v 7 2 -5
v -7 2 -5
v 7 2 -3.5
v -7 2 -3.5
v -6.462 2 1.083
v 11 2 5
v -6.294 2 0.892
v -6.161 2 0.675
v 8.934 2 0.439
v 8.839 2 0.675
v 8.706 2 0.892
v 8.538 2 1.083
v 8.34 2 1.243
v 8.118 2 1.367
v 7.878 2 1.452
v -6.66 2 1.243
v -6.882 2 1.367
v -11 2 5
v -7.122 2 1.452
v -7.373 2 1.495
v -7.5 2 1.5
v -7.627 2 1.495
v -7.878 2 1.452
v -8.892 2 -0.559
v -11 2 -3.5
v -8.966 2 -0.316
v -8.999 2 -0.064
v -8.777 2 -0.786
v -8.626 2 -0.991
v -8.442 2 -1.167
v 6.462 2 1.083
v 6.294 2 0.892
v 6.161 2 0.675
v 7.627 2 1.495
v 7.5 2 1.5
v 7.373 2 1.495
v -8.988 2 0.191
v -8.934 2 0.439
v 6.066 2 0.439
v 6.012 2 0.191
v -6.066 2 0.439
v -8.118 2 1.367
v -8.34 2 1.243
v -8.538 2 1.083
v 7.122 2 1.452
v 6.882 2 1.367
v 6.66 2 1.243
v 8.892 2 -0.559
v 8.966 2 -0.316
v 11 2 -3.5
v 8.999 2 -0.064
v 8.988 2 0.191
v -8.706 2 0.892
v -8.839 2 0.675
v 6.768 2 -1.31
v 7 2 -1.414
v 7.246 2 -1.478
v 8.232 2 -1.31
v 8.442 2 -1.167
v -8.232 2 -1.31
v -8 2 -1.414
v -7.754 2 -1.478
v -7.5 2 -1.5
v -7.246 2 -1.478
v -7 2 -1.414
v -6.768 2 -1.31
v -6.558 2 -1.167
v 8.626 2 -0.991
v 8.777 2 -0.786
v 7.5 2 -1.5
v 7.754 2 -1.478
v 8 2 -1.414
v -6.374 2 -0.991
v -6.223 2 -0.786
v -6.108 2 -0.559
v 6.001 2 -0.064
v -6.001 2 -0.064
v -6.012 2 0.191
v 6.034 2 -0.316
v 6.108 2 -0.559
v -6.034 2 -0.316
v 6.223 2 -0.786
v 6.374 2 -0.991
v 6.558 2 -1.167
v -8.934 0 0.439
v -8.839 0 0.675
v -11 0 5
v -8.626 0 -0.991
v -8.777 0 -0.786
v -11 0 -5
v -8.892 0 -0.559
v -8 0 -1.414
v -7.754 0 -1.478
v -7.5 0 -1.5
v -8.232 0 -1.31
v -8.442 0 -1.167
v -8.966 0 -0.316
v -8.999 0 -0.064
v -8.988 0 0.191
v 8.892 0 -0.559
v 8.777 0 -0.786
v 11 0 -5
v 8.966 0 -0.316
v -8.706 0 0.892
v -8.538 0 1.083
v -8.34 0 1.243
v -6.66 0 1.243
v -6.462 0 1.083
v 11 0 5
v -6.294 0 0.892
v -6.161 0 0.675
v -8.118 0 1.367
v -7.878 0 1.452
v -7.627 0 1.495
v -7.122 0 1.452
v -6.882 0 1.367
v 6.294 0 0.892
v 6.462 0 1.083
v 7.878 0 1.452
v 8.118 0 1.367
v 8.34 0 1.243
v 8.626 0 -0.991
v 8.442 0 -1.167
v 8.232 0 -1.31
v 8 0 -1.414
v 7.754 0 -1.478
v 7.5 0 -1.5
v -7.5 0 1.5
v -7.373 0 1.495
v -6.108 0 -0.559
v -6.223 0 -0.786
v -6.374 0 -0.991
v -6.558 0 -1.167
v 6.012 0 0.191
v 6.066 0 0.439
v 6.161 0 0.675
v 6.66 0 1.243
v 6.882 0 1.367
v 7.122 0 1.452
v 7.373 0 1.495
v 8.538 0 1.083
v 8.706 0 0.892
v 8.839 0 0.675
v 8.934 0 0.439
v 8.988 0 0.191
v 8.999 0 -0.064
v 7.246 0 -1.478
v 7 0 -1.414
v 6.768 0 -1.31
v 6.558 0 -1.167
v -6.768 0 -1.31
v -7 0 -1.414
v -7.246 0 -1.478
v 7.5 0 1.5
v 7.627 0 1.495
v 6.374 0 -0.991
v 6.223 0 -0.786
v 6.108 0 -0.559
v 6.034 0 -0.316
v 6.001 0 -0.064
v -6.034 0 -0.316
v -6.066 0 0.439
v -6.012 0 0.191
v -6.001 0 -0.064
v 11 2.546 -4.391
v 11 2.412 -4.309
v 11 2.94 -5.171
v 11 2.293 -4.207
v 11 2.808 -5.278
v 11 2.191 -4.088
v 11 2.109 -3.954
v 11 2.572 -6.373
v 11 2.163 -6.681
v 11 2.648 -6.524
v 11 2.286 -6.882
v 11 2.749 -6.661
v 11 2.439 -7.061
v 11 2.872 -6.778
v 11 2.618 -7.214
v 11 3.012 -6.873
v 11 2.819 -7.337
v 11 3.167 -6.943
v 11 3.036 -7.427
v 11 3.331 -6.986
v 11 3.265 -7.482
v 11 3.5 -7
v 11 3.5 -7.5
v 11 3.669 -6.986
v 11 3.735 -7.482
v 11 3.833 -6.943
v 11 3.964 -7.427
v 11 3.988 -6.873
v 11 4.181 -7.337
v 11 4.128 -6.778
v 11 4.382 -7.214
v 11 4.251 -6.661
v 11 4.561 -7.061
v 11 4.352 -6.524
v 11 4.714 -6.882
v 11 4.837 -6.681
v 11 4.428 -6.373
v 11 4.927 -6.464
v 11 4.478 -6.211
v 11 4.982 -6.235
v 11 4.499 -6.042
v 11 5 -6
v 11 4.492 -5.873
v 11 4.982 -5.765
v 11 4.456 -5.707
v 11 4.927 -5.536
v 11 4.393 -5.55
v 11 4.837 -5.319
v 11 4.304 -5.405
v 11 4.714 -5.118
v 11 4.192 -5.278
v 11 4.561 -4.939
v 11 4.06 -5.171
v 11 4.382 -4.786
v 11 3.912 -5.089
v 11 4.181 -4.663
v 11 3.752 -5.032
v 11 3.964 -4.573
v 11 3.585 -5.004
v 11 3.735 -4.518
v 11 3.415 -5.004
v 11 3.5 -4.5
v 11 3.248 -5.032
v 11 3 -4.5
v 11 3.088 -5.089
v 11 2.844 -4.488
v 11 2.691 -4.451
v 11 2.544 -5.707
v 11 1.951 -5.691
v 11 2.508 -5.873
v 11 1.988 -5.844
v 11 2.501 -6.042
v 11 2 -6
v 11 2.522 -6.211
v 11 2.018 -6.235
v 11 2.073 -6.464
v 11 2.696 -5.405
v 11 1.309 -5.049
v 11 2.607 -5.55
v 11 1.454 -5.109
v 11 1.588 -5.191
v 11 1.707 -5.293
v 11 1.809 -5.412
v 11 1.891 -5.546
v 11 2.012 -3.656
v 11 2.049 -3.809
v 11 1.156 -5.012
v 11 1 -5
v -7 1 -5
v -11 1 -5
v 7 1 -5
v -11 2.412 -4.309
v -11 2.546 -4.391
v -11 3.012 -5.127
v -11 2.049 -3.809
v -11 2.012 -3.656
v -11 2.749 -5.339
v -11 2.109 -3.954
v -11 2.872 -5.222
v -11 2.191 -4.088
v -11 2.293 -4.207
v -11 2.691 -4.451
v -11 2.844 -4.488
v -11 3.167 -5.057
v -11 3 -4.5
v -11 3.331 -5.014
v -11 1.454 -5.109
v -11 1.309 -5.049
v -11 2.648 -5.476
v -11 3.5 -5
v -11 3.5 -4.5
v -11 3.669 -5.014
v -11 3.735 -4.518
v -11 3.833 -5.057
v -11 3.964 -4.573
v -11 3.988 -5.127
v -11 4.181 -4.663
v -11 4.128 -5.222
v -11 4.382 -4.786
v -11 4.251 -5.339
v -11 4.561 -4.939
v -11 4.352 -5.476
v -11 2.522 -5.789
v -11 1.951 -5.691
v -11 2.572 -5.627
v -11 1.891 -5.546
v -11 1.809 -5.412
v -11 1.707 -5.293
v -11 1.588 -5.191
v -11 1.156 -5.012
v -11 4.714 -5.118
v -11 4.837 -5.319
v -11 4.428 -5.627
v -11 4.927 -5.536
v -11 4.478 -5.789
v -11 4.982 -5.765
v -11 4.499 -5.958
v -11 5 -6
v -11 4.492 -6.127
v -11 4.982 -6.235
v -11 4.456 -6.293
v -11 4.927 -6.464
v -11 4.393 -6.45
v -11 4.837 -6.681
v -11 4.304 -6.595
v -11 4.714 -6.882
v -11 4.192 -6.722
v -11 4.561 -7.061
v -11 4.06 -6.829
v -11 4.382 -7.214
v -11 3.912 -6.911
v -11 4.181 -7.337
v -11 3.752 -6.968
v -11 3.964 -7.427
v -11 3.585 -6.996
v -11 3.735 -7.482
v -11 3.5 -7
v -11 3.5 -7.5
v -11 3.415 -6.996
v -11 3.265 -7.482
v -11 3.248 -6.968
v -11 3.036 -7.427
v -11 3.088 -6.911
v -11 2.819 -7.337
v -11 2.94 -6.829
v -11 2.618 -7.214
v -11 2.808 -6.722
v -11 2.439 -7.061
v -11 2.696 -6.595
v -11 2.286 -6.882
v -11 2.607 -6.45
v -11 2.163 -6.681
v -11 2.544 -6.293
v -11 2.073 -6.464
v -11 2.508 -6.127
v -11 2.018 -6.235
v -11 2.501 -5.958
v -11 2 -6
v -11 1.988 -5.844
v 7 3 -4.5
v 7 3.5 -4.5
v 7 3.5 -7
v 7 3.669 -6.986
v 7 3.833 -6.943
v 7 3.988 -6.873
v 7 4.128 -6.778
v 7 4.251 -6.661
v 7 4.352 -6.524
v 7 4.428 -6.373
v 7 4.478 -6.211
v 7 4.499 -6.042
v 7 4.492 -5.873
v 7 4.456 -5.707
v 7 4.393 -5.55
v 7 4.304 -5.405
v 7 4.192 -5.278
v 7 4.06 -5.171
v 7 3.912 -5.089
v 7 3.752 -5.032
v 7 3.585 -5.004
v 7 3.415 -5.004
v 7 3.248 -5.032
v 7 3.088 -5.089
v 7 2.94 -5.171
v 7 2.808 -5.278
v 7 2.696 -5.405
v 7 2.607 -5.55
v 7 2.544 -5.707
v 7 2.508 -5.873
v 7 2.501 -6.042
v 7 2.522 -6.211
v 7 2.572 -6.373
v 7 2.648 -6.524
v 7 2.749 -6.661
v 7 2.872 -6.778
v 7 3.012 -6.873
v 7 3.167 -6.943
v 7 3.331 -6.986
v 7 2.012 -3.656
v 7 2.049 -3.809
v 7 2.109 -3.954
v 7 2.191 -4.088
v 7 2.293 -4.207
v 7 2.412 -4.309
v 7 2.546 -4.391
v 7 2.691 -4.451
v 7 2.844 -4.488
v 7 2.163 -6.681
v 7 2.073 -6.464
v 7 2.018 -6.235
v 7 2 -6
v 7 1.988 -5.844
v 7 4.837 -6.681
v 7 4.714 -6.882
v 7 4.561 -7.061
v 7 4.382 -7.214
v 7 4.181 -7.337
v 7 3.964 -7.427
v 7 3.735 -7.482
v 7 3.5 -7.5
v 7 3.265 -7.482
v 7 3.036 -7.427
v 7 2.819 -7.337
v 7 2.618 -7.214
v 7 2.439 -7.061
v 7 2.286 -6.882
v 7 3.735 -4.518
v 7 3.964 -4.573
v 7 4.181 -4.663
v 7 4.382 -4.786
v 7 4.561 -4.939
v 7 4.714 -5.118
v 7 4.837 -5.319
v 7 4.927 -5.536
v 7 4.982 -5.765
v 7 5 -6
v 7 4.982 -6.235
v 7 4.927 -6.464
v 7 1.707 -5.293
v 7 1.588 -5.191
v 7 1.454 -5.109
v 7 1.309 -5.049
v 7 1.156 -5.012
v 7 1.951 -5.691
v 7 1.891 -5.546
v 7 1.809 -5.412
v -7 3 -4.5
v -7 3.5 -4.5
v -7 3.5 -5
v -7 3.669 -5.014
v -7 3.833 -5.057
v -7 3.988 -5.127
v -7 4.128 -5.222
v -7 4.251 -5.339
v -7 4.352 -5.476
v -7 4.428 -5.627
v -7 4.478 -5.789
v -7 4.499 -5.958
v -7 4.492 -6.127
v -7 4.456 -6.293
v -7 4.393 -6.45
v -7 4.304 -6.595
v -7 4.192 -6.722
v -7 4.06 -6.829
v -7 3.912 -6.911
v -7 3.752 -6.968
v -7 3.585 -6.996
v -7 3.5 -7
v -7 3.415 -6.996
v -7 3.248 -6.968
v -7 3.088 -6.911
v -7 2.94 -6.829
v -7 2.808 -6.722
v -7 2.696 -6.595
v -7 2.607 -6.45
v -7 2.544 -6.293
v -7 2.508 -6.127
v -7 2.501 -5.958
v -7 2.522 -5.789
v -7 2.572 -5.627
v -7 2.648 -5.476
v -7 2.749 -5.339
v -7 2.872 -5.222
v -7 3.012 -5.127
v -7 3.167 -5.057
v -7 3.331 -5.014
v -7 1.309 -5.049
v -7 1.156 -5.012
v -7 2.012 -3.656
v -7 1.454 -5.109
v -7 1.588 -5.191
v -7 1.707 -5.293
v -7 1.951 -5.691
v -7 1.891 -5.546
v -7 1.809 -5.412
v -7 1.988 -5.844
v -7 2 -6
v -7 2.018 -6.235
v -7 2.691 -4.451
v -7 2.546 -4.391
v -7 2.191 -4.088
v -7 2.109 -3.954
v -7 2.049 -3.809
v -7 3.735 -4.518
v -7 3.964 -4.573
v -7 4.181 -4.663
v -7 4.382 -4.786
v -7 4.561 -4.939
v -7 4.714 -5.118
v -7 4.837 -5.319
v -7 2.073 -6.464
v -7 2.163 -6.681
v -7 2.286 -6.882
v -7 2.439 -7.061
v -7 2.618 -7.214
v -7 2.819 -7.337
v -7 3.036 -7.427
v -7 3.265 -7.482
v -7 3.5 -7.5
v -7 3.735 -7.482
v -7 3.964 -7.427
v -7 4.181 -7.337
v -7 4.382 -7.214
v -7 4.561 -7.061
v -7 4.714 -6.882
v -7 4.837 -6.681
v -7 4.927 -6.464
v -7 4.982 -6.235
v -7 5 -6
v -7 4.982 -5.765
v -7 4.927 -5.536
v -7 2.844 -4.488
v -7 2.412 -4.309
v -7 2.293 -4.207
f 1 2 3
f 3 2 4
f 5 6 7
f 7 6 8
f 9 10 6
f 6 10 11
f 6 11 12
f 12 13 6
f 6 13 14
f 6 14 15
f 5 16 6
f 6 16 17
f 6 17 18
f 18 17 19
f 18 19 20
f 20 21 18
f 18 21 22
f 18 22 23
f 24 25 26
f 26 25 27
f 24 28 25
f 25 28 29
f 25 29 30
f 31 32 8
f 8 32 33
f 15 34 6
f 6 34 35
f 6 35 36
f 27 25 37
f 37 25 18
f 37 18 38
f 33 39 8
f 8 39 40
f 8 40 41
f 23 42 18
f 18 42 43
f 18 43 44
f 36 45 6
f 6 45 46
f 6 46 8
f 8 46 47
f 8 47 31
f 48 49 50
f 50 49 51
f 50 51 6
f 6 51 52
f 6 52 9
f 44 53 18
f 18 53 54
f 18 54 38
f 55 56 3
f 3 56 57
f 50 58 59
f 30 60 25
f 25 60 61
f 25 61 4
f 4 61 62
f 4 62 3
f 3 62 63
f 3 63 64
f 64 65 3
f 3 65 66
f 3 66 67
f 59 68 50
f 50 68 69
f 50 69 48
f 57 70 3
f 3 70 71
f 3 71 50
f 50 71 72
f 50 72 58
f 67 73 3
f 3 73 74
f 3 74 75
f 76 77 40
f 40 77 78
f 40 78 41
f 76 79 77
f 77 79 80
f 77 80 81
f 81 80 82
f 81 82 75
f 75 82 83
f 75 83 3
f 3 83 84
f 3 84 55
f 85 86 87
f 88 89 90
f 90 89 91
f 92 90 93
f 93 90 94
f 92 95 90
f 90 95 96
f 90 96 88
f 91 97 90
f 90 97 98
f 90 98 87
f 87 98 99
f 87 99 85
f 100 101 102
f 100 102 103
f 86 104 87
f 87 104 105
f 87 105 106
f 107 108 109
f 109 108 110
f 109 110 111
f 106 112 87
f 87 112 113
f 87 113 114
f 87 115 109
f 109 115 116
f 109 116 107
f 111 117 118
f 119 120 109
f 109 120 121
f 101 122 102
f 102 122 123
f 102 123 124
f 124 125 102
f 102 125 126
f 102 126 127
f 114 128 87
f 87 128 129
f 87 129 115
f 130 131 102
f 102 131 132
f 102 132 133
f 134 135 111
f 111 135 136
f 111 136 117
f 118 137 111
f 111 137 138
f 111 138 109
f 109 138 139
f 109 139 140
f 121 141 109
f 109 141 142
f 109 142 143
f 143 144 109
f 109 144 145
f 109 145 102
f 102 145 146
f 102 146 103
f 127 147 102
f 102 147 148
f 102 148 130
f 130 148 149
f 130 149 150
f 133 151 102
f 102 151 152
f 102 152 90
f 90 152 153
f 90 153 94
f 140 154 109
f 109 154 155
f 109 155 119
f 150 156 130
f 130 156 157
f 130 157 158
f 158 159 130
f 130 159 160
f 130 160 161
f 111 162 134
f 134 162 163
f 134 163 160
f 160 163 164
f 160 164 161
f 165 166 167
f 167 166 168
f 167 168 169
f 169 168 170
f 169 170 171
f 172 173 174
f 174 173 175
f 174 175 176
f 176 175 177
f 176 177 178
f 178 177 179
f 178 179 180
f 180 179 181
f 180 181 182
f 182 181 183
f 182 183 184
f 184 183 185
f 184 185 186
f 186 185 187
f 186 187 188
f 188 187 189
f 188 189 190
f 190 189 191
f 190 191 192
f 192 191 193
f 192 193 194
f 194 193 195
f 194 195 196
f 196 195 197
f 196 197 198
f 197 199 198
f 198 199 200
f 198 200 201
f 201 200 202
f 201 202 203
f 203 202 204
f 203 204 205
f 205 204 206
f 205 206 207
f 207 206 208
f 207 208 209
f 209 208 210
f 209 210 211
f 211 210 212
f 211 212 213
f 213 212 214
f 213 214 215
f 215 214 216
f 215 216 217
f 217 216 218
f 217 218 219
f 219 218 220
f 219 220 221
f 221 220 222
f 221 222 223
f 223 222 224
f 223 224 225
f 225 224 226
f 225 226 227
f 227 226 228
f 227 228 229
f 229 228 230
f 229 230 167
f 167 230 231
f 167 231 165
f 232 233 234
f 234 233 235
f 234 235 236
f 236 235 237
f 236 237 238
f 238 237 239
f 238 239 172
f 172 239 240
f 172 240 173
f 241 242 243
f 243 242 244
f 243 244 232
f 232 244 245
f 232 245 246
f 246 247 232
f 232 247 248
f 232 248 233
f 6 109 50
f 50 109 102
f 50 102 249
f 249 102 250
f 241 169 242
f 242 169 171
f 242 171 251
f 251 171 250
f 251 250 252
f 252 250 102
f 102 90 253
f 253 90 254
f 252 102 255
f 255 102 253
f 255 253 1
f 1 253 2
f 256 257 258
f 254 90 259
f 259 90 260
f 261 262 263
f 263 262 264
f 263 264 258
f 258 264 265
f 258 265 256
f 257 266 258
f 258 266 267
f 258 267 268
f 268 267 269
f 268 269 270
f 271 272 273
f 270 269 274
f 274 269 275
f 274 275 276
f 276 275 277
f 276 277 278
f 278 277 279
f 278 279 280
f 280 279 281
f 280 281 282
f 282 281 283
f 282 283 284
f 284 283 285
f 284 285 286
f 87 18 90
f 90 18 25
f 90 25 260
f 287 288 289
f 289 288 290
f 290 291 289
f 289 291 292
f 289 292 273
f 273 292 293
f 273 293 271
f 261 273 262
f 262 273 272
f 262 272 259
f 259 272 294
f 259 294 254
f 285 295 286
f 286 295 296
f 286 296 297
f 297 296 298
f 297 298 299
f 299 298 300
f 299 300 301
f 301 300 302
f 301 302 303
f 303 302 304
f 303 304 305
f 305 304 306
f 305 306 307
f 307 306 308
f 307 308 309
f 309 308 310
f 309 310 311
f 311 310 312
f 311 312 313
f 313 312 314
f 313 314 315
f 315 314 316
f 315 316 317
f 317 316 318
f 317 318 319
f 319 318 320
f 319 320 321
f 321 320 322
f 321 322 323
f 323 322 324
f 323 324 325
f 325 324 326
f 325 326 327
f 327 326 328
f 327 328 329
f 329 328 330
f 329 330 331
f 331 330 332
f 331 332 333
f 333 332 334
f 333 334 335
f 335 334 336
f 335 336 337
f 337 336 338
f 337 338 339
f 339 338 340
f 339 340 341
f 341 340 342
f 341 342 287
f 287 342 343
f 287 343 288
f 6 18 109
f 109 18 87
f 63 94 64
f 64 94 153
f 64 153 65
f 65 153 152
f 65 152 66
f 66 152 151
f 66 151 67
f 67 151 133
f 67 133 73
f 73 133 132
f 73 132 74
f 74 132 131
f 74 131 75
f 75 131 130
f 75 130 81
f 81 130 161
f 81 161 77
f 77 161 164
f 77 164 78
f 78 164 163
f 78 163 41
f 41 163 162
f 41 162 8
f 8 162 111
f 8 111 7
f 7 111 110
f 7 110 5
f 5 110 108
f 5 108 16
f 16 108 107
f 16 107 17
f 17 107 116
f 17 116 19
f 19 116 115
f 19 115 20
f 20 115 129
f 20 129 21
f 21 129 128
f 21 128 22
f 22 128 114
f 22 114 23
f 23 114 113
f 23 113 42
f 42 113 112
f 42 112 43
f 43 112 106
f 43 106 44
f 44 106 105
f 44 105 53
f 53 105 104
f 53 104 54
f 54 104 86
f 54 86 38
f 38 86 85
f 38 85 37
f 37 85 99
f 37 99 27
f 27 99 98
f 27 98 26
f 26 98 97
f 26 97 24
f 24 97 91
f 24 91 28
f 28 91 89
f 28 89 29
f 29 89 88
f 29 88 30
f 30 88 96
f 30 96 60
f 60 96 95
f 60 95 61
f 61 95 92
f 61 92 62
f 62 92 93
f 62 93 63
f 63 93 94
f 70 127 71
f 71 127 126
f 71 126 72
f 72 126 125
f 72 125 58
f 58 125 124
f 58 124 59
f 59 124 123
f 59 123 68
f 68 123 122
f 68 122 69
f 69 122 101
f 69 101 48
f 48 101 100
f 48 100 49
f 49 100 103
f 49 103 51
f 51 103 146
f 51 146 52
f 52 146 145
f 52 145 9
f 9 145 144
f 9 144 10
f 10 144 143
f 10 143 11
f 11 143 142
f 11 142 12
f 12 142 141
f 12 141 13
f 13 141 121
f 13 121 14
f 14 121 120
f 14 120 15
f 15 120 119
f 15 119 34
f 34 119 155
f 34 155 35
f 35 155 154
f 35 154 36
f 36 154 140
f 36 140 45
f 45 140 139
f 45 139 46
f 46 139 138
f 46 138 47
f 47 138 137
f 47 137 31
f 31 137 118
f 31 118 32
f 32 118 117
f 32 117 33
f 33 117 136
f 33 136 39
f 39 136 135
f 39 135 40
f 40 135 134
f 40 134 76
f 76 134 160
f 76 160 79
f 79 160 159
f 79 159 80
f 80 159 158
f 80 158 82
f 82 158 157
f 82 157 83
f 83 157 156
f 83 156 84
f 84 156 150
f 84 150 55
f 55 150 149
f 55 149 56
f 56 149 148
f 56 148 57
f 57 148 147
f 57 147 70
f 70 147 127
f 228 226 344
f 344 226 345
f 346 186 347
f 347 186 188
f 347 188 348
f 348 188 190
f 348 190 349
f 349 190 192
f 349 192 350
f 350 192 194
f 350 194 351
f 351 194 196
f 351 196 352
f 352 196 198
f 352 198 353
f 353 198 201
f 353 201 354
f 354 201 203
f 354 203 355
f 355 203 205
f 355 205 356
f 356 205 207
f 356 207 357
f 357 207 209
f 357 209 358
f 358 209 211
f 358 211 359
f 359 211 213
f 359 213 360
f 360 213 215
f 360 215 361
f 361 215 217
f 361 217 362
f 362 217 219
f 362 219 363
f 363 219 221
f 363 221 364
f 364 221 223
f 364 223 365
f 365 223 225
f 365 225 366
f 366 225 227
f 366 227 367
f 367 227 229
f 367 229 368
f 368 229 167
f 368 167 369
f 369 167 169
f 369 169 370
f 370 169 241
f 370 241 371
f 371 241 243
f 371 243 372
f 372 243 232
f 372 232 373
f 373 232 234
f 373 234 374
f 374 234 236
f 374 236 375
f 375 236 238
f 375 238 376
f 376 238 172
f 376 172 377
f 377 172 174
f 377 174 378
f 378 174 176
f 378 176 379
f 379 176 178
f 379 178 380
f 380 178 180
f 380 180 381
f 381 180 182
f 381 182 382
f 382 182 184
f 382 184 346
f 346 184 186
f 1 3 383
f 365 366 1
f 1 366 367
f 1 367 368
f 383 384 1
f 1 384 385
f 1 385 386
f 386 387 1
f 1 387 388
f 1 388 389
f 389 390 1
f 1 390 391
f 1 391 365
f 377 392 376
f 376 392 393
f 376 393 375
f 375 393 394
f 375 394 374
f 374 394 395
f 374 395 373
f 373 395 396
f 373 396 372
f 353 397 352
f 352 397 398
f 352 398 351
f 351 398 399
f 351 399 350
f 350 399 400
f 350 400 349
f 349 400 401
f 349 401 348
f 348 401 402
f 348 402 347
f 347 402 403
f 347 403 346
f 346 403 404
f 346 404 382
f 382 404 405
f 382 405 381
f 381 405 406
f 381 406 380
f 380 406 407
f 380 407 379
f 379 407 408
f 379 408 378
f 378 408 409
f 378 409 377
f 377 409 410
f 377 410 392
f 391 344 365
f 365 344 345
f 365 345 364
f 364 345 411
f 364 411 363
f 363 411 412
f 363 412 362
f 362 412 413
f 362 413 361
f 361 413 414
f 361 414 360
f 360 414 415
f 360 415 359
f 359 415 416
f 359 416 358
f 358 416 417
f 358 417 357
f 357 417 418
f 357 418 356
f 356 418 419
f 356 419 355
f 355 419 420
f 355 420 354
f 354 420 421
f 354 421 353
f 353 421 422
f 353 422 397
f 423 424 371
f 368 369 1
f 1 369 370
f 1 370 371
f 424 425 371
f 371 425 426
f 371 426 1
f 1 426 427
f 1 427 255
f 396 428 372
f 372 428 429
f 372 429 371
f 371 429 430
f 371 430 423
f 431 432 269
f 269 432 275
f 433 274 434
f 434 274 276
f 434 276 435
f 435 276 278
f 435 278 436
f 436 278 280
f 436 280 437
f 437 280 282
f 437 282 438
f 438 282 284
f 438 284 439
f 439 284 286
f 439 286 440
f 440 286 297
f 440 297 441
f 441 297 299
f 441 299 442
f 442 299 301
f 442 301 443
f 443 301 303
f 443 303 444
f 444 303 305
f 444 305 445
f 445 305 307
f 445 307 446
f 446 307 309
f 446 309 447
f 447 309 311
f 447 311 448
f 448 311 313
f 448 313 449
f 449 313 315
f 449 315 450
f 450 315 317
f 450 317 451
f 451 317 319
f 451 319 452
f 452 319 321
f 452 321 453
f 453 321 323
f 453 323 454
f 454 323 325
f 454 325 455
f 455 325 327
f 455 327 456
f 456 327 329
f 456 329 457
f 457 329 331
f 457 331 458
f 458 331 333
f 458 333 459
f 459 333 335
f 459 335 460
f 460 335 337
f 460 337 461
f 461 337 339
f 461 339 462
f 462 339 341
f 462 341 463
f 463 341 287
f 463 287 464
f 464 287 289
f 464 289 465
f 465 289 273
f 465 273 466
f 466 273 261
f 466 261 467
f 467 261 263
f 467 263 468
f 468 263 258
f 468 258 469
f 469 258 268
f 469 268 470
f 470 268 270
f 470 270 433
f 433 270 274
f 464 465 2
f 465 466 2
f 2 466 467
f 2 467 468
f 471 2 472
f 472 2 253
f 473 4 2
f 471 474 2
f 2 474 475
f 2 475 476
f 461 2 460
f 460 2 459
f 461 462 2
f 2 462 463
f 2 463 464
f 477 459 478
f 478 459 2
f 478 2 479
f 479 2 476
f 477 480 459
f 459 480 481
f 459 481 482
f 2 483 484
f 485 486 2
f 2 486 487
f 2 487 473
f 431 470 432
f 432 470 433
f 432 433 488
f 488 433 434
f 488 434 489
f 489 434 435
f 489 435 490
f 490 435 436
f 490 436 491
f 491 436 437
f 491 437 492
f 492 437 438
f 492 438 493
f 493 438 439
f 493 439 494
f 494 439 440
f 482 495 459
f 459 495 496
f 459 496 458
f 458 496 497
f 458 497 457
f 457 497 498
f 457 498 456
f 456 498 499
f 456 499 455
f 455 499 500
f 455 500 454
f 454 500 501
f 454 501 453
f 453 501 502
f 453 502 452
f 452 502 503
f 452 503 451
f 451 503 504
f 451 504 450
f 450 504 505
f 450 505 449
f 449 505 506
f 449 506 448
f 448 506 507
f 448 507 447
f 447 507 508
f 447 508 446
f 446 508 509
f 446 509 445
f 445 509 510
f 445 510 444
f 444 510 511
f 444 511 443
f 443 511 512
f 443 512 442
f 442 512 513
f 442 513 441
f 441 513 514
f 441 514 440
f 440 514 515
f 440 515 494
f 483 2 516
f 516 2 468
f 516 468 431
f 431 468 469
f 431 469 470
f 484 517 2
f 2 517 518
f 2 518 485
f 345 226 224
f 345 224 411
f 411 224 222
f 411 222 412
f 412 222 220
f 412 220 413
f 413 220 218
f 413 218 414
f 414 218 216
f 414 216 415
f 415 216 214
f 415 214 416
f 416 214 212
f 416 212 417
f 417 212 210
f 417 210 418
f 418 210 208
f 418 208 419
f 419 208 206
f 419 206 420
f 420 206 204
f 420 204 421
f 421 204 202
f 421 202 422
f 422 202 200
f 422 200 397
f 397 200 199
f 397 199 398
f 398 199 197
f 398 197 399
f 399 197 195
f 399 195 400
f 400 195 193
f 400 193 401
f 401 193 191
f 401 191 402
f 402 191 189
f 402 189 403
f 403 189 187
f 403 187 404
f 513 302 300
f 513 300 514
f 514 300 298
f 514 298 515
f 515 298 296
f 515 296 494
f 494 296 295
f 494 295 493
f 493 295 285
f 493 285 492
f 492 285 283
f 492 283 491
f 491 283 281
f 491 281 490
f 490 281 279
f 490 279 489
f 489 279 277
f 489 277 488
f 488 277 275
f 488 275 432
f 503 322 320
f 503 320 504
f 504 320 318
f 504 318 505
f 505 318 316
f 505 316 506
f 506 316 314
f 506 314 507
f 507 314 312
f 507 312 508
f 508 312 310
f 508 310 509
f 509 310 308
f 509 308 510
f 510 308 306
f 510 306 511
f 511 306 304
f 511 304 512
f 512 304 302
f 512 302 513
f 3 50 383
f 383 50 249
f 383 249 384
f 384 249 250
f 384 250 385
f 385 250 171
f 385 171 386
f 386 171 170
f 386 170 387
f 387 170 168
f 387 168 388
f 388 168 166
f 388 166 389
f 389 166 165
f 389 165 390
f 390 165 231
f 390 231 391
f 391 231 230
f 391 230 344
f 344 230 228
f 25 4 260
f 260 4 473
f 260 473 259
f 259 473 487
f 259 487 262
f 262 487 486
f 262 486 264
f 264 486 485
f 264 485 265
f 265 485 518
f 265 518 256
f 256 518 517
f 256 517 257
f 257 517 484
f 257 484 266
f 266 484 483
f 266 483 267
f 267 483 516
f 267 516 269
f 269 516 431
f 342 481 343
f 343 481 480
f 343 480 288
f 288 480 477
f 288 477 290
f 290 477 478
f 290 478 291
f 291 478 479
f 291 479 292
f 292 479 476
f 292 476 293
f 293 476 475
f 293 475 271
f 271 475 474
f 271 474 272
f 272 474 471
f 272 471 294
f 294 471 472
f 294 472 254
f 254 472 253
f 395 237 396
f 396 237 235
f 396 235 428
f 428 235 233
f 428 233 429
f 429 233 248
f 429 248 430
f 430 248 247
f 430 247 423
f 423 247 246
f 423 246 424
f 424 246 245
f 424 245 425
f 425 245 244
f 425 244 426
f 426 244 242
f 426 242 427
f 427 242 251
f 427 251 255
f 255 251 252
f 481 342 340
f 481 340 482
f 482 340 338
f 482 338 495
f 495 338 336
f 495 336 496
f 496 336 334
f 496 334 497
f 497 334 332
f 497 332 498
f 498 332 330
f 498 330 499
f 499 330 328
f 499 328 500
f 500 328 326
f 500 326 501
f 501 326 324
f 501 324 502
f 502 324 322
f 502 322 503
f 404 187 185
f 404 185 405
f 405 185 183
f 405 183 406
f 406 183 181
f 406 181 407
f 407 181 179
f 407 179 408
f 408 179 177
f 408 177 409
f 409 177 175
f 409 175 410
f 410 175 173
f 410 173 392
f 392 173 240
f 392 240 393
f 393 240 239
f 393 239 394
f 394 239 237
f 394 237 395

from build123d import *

# Parameters (mm, degrees)
SKETCH2_W           = 22
SKETCH2_H           = 10
SKETCH2_R           = 1.5
BOSS_EXTRUDE1_DEPTH = 2
SKETCH3_W           = 3
SKETCH3_H           = 3
SKETCH3_R           = 1
BOSS_EXTRUDE2_DEPTH = 4
FILLET1_R           = 1.5
FILLET2_R           = 1
FILLET3_R           = 1
FILLET4_R           = 1.5


with BuildPart() as part:
    # Sketch2 → Boss-Extrude1 (new body)
    with BuildSketch(Plane(origin=(0, 0, 0), x_dir=(1, 0, 0), z_dir=(0, 1, 0))):
        Rectangle(SKETCH2_W, SKETCH2_H)
        with Locations(Location((-7.5, 0, 0), (0, 0, 270))):
            Circle(SKETCH2_R, mode=Mode.SUBTRACT)
        with Locations(Location((7.5, 0, 0), (0, 0, 270))):
            Circle(SKETCH2_R, mode=Mode.SUBTRACT)
    extrude(amount=BOSS_EXTRUDE1_DEPTH)

    # Sketch3 → Boss-Extrude2 (add)
    with BuildSketch(Plane(origin=(11, 0, 0), x_dir=(0, 0, -1), z_dir=(1, 0, 0))):
        with Locations((6, 3.5)):
            Rectangle(SKETCH3_W, SKETCH3_H)
        with Locations((6, 3.5)):
            Circle(SKETCH3_R, mode=Mode.SUBTRACT)
    boss_extrude2 = extrude(amount=-BOSS_EXTRUDE2_DEPTH)

    # Mirror1: Boss-Extrude2 across plane
    add(boss_extrude2.mirror(Plane(origin=(0, 0, 0), x_dir=(0, 0, 1), z_dir=(1, 0, 0))))

    # Fillet1
    fillet1_edges = [part.edges().sort_by_distance(p)[0] for p in [
        (9, 5, -7.5),
        (9, 5, -4.5),
        (-9, 5, -7.5),
        (-9, 5, -4.5),
    ]]
    fillet(fillet1_edges, radius=FILLET1_R - 0.0001)  # a hair under: the kernel refuses the full size

    # Fillet2
    fillet2_edges = [part.edges().sort_by_distance(p)[0] for p in [
        (9, 2, -4.5),
        (-9, 2, -4.5),
    ]]
    fillet(fillet2_edges, radius=FILLET2_R)

    # Fillet3
    fillet3_edges = [part.edges().sort_by_distance(p)[0] for p in [
        (-9, 2, -5),
        (9, 2, -5),
    ]]
    fillet(fillet3_edges, radius=FILLET3_R)

    # Fillet4
    fillet4_edges = [part.edges().sort_by_distance(p)[0] for p in [
        (-9, 2, -7.5),
        (9, 2, -7.5),
    ]]
    fillet(fillet4_edges, radius=FILLET4_R - 0.0001)  # a hair under: the kernel refuses the full size


solid = part.part
